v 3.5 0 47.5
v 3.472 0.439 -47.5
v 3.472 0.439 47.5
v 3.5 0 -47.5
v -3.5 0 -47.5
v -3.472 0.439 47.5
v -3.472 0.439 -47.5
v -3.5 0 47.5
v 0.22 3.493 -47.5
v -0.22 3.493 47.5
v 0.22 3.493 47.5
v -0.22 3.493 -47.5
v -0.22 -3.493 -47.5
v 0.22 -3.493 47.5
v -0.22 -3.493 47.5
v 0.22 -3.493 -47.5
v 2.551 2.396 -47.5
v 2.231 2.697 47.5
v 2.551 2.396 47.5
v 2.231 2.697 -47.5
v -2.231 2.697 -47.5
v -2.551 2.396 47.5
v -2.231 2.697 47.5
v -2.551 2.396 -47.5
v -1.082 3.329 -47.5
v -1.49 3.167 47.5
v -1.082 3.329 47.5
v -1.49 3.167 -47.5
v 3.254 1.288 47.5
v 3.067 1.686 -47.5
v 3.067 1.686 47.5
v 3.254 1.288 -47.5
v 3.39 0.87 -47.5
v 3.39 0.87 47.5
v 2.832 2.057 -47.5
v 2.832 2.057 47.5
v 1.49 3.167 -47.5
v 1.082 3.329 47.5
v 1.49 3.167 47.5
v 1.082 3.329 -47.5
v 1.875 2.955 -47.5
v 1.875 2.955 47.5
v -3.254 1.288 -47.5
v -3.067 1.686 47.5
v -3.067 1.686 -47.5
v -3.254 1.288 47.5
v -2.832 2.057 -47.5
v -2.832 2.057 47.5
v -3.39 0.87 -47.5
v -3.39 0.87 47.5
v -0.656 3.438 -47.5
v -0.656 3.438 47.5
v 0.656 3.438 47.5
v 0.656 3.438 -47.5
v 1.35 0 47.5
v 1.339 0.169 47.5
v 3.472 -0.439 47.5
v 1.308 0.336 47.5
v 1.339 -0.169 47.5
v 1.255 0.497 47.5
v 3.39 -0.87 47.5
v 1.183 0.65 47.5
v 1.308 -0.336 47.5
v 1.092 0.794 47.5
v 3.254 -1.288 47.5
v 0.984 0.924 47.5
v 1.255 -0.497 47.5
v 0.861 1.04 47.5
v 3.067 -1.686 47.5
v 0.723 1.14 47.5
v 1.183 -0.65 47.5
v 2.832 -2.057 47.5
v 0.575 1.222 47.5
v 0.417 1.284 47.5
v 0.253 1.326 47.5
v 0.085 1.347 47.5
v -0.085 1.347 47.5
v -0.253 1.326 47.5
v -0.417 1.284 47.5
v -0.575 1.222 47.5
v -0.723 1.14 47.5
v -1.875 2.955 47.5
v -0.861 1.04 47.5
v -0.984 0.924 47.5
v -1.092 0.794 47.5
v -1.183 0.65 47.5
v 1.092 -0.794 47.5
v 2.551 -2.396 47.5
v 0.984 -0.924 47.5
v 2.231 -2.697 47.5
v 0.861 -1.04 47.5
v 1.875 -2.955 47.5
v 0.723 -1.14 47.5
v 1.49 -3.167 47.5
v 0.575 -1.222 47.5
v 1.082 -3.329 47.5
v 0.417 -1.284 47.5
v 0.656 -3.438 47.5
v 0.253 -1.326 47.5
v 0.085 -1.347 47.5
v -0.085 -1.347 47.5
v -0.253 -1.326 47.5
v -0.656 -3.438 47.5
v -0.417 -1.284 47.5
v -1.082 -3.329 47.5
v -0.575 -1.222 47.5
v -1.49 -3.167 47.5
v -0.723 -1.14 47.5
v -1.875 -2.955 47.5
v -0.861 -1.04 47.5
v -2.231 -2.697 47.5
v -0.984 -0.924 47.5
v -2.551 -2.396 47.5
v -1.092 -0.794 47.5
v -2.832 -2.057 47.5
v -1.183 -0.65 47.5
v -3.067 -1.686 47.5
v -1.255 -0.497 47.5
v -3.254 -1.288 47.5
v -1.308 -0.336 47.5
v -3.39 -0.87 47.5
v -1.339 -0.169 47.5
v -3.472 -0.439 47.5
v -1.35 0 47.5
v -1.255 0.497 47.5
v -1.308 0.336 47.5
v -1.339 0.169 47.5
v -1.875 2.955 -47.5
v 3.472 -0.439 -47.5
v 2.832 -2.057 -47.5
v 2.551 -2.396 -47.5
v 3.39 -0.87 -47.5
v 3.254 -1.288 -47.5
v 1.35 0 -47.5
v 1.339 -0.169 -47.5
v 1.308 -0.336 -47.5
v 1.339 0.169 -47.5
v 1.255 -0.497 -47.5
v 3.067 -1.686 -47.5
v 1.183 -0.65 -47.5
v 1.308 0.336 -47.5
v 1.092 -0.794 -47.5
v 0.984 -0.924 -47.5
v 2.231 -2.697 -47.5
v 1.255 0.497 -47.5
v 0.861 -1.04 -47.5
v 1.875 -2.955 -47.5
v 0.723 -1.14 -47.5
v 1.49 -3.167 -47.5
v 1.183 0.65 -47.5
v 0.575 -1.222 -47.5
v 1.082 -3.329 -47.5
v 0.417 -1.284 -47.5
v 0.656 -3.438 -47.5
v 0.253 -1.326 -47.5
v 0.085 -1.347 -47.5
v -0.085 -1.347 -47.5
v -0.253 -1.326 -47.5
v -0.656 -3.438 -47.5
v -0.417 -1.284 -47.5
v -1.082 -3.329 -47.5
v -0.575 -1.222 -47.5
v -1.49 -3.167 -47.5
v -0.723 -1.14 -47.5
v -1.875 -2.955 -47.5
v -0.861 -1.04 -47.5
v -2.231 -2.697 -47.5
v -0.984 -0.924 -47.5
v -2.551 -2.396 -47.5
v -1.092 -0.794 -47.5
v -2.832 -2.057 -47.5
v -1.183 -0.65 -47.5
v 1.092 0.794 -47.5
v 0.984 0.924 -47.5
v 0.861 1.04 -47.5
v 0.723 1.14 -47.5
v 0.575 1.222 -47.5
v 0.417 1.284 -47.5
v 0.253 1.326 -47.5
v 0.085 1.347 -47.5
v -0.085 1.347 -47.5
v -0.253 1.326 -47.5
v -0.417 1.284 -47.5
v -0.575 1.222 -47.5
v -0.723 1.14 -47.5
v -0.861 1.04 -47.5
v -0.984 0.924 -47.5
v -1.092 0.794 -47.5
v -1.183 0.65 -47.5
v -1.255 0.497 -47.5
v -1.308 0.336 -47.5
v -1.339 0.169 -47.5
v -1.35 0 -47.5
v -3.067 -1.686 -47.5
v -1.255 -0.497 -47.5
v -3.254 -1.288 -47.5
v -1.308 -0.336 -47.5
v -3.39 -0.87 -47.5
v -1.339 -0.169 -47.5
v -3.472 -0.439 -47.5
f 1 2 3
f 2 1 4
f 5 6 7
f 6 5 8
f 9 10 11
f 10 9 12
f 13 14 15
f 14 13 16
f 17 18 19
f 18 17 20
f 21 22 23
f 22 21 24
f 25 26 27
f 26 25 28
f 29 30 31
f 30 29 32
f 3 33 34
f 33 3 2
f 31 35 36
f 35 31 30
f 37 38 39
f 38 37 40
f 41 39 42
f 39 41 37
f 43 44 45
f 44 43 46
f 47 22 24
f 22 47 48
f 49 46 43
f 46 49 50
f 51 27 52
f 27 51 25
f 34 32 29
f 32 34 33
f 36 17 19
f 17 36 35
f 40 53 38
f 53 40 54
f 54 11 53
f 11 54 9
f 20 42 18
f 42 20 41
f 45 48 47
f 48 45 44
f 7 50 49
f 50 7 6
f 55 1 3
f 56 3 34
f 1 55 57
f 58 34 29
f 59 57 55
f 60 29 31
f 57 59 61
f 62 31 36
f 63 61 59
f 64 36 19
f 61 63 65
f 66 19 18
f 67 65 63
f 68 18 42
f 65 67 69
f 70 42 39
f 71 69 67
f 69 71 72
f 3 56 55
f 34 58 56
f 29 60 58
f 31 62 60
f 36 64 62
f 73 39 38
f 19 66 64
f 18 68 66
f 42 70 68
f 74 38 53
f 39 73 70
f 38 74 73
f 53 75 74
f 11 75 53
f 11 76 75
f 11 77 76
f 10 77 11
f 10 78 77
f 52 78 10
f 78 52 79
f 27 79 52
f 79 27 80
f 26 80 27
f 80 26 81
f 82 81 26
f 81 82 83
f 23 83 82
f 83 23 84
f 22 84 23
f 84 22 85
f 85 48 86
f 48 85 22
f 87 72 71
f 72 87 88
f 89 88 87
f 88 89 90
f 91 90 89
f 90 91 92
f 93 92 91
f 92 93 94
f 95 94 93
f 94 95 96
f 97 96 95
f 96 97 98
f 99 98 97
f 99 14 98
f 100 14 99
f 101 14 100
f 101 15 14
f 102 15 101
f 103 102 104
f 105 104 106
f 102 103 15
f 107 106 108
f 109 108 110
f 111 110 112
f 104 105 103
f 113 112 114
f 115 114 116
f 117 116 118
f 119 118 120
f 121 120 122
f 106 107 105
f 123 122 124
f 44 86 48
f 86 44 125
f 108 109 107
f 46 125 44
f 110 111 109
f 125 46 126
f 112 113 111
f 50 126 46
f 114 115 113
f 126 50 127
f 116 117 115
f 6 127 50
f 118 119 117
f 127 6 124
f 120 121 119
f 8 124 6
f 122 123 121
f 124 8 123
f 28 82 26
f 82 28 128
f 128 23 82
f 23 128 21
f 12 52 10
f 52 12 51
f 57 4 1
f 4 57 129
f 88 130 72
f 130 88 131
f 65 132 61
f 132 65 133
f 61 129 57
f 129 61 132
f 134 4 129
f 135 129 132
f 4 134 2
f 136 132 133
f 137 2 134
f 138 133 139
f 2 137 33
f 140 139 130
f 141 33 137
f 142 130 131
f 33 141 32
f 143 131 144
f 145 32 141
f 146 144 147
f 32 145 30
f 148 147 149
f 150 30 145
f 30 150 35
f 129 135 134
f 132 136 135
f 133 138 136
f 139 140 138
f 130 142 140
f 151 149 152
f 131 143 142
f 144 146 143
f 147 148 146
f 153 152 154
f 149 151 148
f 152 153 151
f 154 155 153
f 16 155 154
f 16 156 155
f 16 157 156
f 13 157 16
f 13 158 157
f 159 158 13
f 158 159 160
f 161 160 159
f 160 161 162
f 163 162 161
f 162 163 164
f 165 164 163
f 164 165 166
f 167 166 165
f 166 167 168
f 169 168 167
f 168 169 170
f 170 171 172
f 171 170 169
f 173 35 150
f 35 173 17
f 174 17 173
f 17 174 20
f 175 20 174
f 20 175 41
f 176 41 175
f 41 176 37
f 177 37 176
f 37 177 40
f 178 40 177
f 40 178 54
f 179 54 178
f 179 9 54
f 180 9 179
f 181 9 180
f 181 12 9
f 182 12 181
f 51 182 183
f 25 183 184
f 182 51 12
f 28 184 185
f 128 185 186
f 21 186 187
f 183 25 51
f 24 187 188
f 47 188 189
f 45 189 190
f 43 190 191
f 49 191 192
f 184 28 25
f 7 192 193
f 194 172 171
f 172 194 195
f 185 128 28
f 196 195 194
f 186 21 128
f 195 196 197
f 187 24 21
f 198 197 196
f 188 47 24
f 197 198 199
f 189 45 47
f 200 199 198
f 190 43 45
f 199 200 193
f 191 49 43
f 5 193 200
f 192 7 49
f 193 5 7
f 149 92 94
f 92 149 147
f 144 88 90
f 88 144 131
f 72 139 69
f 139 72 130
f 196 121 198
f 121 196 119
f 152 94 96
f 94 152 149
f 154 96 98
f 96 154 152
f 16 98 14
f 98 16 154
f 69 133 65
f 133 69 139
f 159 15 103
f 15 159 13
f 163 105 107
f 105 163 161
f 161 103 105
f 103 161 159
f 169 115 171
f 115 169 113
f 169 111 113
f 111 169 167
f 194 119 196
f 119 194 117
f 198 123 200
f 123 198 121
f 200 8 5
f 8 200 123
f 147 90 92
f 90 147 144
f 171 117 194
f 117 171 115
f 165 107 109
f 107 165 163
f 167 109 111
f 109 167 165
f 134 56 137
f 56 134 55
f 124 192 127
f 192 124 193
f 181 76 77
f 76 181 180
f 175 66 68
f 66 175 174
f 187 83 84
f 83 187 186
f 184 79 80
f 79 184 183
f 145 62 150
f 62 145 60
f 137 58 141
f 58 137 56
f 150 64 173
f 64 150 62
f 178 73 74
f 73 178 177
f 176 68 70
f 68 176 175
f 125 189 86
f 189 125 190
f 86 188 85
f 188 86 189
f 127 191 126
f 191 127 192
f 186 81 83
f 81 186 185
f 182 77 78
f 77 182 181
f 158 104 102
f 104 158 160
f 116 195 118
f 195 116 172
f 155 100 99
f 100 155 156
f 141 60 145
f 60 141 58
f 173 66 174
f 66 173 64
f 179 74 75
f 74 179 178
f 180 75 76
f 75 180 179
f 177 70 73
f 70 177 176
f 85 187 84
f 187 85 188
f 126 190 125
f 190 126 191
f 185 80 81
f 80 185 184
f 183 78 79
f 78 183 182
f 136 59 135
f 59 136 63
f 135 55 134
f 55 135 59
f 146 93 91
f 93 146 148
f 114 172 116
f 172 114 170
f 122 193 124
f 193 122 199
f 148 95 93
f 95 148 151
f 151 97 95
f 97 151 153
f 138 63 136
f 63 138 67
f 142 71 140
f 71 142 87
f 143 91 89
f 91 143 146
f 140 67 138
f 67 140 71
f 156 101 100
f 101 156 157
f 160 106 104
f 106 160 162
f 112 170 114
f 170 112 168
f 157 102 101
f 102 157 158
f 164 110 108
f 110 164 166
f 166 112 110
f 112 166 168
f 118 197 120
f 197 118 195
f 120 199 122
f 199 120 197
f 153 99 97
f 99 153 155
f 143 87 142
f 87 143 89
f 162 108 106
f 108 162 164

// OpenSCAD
$fn = 50;


difference() {
	union() {
		translate(v = [0, 0, -47.5000000000]) {
			cylinder(h = 95, r = 3.5000000000);
		}
	}
	union() {
		translate(v = [0, 0, -100.0000000000]) {
			cylinder(h = 200, r = 1.3500000000);
		}
	}
}
